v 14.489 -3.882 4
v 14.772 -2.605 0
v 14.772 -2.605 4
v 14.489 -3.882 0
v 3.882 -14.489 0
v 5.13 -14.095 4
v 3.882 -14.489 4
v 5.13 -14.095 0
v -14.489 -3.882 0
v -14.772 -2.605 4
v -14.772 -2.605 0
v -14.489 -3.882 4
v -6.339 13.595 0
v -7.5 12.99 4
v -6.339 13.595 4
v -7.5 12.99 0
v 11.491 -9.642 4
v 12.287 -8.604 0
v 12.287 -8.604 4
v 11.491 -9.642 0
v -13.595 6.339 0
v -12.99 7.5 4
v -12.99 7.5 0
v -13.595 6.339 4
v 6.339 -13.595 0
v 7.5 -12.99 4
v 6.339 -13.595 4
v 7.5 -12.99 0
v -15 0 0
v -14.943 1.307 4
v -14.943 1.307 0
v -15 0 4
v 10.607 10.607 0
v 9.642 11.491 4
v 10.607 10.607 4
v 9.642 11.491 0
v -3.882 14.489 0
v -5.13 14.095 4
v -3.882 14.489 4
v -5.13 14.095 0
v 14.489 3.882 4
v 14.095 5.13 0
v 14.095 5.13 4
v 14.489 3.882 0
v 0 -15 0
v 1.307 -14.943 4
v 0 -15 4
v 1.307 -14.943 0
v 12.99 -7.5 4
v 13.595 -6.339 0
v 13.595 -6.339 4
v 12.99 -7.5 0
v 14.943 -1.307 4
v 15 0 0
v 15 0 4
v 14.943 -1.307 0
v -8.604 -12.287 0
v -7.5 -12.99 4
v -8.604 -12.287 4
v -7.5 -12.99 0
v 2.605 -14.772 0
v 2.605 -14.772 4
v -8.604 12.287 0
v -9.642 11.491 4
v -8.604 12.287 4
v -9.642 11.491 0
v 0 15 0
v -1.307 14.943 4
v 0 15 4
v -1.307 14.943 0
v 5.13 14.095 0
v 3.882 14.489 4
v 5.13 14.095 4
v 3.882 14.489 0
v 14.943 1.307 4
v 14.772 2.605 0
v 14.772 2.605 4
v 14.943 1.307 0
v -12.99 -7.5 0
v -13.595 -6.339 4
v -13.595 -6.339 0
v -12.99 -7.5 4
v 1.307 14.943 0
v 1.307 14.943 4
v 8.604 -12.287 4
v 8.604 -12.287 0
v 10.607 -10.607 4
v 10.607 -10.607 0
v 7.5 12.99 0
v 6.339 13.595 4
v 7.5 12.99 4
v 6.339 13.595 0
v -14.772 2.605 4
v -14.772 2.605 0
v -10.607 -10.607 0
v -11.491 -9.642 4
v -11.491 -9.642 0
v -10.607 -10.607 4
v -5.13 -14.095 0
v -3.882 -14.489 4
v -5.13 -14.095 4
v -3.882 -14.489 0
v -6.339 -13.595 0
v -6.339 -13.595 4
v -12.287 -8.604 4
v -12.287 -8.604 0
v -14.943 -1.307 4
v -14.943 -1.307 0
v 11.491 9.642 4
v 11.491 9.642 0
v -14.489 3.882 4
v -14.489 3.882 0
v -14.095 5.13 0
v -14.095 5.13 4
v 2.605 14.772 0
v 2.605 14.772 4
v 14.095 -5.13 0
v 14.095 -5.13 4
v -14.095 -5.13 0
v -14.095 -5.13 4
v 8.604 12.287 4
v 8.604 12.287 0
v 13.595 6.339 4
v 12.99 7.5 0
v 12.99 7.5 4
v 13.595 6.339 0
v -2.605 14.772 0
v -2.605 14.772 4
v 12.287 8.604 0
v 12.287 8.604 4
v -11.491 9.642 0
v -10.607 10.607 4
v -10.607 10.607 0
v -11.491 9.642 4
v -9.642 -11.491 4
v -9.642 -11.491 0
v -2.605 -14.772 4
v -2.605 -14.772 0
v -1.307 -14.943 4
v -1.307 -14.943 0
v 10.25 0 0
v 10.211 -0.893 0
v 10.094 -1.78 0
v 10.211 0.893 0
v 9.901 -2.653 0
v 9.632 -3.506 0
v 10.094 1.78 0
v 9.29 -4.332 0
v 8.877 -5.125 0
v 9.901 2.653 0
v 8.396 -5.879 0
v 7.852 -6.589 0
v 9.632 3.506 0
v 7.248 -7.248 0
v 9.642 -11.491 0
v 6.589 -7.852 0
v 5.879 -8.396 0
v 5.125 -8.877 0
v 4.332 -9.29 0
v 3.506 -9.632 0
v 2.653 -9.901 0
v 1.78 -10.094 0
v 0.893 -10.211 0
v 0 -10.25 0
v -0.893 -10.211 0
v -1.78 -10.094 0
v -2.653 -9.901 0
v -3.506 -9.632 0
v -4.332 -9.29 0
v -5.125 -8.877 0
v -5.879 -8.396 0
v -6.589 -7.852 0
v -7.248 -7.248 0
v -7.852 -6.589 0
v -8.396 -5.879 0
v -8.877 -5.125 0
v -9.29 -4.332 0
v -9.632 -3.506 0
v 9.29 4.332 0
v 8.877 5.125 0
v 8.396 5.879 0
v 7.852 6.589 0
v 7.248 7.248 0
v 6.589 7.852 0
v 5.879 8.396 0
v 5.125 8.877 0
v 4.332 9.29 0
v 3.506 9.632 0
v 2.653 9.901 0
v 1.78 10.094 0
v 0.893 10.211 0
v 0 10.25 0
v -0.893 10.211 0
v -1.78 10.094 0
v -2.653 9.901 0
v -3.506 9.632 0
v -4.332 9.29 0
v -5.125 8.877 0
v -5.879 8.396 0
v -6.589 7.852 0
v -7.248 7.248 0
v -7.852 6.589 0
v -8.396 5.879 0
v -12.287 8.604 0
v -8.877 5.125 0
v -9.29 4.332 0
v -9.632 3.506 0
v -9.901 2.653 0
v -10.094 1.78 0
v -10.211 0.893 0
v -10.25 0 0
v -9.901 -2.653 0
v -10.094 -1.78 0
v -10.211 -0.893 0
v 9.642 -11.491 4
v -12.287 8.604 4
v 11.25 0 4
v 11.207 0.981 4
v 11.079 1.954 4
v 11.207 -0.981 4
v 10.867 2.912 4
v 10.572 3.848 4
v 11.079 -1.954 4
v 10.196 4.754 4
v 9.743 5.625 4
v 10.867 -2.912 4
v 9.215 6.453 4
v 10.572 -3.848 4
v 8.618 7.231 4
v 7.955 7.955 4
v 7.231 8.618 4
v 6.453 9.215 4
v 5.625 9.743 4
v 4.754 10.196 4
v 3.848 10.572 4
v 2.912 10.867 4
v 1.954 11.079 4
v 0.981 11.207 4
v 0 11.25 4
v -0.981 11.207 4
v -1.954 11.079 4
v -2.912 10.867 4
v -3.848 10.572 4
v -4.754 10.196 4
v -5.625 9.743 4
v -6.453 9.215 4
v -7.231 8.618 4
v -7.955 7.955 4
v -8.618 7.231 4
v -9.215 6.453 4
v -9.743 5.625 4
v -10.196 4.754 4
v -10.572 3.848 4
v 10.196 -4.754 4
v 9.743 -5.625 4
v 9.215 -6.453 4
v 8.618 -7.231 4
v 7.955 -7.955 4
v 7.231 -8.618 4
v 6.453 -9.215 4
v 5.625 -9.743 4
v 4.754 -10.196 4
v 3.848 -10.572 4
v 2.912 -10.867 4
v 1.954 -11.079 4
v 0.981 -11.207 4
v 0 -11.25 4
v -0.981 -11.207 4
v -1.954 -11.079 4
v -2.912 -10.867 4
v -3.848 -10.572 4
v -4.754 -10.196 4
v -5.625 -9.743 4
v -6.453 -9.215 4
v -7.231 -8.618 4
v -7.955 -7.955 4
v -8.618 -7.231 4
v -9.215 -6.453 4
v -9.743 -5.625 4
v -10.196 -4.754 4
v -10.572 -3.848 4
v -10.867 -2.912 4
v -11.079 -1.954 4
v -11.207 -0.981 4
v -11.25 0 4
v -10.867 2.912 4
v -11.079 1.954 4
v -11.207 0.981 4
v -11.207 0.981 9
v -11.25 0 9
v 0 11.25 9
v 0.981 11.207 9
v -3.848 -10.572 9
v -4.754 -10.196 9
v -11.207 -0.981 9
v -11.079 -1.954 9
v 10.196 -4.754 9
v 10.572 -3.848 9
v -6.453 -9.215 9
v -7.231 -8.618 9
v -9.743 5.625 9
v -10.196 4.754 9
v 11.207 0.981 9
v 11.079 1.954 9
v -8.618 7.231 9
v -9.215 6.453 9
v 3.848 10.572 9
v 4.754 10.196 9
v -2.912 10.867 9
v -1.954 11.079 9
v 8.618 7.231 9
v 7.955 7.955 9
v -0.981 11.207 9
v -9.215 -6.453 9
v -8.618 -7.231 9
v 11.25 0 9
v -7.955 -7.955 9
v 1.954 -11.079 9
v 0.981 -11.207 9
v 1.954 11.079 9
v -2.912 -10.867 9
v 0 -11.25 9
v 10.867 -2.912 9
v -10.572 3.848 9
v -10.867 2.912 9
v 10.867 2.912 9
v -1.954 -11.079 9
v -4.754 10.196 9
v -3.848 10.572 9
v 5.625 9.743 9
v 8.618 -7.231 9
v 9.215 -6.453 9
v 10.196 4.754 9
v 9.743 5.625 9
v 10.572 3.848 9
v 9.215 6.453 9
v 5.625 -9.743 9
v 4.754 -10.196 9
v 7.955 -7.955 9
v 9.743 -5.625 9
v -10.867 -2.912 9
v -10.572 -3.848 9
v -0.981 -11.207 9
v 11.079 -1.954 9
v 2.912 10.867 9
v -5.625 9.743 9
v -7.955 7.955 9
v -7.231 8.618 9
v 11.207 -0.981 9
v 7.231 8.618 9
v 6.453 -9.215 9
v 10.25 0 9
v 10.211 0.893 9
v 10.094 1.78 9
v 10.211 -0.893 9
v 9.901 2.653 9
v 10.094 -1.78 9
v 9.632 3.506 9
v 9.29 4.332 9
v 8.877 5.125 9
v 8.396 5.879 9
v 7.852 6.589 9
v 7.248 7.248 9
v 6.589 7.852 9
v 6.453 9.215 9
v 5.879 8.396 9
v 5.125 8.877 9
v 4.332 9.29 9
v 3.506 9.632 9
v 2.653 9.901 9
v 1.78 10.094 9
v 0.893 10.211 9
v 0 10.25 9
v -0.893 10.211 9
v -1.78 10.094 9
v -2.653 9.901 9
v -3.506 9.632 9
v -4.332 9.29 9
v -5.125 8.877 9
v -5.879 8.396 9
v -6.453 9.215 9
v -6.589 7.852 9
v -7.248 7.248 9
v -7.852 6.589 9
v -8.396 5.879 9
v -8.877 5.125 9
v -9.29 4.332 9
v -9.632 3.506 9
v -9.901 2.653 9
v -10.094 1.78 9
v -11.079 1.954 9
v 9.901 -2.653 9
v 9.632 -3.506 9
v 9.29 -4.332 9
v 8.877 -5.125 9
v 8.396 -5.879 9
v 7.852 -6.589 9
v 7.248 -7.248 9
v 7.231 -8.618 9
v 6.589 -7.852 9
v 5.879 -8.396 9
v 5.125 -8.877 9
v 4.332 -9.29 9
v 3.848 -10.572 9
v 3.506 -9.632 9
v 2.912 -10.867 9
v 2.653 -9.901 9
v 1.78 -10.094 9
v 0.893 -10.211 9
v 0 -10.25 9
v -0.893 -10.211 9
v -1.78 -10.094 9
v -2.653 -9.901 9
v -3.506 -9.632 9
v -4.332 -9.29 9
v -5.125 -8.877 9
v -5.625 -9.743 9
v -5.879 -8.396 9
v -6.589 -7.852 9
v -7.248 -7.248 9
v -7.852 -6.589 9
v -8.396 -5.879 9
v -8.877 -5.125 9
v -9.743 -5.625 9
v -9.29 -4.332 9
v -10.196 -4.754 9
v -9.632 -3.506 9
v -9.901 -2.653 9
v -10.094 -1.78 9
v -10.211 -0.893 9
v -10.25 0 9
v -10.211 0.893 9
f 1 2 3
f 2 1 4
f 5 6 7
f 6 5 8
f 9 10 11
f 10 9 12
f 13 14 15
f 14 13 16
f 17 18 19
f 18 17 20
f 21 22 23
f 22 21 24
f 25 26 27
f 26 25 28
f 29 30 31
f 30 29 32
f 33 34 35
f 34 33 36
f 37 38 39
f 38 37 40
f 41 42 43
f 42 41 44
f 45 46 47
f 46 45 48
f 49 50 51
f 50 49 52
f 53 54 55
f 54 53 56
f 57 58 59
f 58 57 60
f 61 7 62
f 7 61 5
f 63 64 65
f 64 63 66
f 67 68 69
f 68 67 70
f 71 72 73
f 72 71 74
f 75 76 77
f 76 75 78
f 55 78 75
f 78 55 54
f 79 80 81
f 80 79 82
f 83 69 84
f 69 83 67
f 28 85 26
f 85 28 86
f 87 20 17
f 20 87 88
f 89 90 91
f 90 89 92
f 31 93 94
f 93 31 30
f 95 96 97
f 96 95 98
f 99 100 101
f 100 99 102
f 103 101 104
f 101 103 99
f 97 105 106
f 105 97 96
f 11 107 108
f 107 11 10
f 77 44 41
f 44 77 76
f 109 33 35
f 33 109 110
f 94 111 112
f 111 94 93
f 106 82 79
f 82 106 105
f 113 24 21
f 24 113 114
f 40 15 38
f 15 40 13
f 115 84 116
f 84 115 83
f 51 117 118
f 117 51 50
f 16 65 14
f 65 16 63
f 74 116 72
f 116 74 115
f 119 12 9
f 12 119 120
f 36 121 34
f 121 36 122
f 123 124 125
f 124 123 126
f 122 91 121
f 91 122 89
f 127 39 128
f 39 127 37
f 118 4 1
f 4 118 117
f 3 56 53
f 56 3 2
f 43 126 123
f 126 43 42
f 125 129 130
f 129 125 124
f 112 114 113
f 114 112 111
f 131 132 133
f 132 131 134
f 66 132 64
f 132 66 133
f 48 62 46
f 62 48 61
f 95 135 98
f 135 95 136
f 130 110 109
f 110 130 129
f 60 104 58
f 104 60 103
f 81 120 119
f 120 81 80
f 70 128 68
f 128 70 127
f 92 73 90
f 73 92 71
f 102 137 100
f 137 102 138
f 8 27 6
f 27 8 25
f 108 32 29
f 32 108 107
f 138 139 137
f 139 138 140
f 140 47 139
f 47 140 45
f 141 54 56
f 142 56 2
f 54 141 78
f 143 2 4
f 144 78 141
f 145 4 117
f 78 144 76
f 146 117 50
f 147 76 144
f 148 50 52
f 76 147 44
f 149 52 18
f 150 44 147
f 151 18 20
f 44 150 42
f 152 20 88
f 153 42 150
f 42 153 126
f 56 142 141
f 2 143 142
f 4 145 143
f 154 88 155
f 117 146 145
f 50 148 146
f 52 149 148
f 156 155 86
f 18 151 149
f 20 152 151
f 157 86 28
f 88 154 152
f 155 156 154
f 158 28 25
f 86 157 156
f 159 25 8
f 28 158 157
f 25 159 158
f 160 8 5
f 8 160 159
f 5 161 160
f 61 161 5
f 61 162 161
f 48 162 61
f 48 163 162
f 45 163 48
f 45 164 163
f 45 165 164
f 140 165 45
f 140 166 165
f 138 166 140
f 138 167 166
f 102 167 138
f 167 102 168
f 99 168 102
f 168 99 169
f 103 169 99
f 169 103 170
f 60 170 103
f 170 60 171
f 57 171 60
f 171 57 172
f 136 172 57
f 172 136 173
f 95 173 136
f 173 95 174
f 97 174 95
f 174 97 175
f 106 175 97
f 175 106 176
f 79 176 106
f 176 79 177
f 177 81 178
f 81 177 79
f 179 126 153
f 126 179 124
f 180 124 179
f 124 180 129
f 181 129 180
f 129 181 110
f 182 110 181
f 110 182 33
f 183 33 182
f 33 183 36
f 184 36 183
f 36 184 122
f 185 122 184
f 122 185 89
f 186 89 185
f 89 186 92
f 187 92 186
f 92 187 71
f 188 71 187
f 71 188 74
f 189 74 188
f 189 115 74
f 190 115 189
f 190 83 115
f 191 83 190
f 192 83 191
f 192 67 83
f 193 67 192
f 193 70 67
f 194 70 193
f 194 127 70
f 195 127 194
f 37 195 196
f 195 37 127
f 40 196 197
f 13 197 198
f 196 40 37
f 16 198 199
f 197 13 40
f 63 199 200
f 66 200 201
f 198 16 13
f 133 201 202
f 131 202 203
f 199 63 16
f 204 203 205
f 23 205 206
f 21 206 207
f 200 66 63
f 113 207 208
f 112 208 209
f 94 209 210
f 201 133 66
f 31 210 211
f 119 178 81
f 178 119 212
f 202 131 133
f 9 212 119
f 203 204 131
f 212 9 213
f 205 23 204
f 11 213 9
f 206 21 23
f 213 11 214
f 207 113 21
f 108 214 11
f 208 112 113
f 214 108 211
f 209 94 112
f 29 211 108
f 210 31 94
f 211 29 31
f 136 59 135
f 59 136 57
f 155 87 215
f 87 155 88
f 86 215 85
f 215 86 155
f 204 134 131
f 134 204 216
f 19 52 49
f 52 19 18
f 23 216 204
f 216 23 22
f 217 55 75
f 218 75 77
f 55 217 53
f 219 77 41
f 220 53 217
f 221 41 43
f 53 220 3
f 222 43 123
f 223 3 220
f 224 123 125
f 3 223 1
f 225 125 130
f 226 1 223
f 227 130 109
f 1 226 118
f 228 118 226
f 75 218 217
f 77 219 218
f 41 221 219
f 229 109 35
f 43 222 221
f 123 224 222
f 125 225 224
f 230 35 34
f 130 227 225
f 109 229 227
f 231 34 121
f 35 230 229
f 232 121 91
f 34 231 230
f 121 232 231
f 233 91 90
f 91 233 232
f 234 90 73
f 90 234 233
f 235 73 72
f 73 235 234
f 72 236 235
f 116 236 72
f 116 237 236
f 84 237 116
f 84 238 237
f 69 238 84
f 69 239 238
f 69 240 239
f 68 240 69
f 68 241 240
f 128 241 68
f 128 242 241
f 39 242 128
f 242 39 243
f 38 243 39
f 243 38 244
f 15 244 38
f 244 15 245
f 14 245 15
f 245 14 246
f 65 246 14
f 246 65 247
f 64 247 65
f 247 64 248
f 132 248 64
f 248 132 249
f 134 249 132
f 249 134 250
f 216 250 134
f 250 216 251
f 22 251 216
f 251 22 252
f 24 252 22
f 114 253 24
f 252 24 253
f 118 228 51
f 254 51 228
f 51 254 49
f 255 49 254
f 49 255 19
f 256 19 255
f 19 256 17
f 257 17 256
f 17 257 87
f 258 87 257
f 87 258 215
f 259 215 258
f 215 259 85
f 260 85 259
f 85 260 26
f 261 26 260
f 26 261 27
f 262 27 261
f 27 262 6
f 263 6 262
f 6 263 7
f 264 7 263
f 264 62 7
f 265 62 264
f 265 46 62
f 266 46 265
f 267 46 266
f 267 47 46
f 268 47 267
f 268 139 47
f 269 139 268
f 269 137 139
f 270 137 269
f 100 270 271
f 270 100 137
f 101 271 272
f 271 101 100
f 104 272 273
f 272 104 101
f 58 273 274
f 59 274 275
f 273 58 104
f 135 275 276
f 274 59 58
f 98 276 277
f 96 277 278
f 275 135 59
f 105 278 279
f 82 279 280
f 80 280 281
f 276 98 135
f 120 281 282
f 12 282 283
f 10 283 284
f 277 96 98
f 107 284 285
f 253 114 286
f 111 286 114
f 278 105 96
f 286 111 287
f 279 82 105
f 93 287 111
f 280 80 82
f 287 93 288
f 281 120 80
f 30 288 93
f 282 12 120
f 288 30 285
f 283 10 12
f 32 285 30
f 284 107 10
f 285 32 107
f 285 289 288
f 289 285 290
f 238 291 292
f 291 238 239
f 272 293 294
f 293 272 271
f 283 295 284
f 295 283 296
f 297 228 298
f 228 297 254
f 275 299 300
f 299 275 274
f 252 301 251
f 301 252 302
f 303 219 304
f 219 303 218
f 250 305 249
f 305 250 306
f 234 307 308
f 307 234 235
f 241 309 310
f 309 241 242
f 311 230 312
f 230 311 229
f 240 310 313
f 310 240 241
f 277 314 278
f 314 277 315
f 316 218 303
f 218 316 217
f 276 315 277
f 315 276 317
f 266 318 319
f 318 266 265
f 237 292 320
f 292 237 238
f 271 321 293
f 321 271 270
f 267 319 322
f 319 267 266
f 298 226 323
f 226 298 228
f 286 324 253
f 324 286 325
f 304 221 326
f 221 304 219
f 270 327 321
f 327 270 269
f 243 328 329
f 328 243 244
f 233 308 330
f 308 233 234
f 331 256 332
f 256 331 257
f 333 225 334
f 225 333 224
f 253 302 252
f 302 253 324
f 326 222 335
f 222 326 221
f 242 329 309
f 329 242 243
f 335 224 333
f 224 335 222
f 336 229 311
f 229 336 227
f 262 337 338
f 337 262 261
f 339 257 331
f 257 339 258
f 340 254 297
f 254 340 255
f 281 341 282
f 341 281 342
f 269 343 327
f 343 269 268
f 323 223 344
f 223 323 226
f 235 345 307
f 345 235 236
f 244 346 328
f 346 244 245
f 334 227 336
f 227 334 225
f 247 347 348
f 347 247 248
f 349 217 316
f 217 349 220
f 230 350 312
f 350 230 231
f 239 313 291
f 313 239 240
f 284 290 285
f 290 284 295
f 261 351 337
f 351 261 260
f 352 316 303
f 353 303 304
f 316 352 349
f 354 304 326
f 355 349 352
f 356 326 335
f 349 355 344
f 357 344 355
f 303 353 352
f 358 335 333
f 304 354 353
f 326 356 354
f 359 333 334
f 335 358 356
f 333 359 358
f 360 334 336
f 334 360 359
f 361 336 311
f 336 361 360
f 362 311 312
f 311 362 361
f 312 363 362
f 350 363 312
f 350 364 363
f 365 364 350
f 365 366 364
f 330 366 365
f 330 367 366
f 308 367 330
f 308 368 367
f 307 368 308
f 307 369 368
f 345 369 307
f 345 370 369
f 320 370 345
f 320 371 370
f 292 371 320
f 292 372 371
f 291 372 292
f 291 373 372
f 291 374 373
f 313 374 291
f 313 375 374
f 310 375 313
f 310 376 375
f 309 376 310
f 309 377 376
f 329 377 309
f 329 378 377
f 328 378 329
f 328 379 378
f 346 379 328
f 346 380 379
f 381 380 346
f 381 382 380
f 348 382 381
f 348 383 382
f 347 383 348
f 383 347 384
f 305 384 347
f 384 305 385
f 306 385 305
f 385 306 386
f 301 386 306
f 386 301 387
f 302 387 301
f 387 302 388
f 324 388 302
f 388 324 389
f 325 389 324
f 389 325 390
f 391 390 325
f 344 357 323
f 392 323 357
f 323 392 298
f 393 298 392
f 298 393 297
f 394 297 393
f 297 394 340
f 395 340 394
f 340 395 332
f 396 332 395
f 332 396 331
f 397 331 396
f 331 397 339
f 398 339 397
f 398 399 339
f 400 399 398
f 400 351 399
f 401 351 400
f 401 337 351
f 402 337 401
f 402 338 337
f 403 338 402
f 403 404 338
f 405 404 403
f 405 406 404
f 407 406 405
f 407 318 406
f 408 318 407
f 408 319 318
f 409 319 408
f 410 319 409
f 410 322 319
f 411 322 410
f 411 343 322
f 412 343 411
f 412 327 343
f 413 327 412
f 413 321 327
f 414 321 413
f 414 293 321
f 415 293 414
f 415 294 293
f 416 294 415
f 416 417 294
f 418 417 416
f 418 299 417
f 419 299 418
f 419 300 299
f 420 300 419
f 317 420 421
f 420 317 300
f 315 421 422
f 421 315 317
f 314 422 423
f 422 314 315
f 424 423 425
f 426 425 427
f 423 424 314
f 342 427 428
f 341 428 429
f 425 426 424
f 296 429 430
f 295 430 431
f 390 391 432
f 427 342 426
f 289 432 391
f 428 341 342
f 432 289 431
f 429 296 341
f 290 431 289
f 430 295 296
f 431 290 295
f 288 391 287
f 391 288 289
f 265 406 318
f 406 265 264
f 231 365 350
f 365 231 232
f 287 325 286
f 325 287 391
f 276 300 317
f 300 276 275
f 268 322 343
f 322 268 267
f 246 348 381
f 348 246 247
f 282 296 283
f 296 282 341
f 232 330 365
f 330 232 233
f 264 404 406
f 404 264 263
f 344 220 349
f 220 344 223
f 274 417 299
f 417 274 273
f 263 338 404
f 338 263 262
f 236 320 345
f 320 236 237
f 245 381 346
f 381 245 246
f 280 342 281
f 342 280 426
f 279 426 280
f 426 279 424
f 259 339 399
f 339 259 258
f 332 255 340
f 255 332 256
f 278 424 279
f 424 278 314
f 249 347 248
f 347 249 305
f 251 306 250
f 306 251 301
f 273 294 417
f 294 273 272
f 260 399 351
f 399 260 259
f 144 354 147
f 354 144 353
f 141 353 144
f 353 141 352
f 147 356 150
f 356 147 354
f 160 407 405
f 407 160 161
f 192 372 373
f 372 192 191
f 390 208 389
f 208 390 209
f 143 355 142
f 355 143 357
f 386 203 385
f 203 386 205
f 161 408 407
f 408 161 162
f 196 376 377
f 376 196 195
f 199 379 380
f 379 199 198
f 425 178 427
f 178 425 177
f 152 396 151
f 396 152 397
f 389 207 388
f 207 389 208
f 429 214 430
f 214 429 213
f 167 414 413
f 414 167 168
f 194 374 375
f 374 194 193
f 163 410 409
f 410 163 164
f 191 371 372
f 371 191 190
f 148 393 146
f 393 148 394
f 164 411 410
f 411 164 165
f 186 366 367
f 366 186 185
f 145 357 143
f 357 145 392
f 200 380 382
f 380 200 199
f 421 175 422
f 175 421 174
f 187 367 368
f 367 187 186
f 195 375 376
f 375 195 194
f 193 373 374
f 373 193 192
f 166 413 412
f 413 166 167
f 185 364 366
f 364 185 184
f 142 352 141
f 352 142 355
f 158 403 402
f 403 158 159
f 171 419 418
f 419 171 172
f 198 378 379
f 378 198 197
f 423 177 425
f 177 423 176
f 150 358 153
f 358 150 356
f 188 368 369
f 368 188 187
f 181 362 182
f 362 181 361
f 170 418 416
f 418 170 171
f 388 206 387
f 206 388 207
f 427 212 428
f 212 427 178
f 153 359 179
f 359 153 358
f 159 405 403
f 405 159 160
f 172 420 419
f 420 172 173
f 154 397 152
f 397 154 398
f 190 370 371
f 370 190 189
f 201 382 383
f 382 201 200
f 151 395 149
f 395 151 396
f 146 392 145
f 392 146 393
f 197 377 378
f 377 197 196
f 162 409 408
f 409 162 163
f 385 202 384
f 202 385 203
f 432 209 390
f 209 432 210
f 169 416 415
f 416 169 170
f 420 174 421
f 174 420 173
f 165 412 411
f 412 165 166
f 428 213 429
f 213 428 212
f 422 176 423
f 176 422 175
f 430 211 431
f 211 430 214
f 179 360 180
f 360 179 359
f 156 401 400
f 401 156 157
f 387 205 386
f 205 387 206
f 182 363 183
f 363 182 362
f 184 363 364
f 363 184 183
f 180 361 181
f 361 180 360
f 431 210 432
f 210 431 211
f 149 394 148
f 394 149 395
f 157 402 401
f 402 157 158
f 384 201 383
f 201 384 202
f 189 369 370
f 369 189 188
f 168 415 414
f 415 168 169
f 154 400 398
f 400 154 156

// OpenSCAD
// Adaptor to hold tubing to be directed at windows of CD250
$fa=5;
$fs=0.1;// 
spacer_thickness=4;// 
difference(){
union(){
    cylinder(h=spacer_thickness,d=30);
    translate([0,0,spacer_thickness])cylinder(h=5,d=22.5);
}
cylinder(h=5+spacer_thickness,d=20.5);
}
